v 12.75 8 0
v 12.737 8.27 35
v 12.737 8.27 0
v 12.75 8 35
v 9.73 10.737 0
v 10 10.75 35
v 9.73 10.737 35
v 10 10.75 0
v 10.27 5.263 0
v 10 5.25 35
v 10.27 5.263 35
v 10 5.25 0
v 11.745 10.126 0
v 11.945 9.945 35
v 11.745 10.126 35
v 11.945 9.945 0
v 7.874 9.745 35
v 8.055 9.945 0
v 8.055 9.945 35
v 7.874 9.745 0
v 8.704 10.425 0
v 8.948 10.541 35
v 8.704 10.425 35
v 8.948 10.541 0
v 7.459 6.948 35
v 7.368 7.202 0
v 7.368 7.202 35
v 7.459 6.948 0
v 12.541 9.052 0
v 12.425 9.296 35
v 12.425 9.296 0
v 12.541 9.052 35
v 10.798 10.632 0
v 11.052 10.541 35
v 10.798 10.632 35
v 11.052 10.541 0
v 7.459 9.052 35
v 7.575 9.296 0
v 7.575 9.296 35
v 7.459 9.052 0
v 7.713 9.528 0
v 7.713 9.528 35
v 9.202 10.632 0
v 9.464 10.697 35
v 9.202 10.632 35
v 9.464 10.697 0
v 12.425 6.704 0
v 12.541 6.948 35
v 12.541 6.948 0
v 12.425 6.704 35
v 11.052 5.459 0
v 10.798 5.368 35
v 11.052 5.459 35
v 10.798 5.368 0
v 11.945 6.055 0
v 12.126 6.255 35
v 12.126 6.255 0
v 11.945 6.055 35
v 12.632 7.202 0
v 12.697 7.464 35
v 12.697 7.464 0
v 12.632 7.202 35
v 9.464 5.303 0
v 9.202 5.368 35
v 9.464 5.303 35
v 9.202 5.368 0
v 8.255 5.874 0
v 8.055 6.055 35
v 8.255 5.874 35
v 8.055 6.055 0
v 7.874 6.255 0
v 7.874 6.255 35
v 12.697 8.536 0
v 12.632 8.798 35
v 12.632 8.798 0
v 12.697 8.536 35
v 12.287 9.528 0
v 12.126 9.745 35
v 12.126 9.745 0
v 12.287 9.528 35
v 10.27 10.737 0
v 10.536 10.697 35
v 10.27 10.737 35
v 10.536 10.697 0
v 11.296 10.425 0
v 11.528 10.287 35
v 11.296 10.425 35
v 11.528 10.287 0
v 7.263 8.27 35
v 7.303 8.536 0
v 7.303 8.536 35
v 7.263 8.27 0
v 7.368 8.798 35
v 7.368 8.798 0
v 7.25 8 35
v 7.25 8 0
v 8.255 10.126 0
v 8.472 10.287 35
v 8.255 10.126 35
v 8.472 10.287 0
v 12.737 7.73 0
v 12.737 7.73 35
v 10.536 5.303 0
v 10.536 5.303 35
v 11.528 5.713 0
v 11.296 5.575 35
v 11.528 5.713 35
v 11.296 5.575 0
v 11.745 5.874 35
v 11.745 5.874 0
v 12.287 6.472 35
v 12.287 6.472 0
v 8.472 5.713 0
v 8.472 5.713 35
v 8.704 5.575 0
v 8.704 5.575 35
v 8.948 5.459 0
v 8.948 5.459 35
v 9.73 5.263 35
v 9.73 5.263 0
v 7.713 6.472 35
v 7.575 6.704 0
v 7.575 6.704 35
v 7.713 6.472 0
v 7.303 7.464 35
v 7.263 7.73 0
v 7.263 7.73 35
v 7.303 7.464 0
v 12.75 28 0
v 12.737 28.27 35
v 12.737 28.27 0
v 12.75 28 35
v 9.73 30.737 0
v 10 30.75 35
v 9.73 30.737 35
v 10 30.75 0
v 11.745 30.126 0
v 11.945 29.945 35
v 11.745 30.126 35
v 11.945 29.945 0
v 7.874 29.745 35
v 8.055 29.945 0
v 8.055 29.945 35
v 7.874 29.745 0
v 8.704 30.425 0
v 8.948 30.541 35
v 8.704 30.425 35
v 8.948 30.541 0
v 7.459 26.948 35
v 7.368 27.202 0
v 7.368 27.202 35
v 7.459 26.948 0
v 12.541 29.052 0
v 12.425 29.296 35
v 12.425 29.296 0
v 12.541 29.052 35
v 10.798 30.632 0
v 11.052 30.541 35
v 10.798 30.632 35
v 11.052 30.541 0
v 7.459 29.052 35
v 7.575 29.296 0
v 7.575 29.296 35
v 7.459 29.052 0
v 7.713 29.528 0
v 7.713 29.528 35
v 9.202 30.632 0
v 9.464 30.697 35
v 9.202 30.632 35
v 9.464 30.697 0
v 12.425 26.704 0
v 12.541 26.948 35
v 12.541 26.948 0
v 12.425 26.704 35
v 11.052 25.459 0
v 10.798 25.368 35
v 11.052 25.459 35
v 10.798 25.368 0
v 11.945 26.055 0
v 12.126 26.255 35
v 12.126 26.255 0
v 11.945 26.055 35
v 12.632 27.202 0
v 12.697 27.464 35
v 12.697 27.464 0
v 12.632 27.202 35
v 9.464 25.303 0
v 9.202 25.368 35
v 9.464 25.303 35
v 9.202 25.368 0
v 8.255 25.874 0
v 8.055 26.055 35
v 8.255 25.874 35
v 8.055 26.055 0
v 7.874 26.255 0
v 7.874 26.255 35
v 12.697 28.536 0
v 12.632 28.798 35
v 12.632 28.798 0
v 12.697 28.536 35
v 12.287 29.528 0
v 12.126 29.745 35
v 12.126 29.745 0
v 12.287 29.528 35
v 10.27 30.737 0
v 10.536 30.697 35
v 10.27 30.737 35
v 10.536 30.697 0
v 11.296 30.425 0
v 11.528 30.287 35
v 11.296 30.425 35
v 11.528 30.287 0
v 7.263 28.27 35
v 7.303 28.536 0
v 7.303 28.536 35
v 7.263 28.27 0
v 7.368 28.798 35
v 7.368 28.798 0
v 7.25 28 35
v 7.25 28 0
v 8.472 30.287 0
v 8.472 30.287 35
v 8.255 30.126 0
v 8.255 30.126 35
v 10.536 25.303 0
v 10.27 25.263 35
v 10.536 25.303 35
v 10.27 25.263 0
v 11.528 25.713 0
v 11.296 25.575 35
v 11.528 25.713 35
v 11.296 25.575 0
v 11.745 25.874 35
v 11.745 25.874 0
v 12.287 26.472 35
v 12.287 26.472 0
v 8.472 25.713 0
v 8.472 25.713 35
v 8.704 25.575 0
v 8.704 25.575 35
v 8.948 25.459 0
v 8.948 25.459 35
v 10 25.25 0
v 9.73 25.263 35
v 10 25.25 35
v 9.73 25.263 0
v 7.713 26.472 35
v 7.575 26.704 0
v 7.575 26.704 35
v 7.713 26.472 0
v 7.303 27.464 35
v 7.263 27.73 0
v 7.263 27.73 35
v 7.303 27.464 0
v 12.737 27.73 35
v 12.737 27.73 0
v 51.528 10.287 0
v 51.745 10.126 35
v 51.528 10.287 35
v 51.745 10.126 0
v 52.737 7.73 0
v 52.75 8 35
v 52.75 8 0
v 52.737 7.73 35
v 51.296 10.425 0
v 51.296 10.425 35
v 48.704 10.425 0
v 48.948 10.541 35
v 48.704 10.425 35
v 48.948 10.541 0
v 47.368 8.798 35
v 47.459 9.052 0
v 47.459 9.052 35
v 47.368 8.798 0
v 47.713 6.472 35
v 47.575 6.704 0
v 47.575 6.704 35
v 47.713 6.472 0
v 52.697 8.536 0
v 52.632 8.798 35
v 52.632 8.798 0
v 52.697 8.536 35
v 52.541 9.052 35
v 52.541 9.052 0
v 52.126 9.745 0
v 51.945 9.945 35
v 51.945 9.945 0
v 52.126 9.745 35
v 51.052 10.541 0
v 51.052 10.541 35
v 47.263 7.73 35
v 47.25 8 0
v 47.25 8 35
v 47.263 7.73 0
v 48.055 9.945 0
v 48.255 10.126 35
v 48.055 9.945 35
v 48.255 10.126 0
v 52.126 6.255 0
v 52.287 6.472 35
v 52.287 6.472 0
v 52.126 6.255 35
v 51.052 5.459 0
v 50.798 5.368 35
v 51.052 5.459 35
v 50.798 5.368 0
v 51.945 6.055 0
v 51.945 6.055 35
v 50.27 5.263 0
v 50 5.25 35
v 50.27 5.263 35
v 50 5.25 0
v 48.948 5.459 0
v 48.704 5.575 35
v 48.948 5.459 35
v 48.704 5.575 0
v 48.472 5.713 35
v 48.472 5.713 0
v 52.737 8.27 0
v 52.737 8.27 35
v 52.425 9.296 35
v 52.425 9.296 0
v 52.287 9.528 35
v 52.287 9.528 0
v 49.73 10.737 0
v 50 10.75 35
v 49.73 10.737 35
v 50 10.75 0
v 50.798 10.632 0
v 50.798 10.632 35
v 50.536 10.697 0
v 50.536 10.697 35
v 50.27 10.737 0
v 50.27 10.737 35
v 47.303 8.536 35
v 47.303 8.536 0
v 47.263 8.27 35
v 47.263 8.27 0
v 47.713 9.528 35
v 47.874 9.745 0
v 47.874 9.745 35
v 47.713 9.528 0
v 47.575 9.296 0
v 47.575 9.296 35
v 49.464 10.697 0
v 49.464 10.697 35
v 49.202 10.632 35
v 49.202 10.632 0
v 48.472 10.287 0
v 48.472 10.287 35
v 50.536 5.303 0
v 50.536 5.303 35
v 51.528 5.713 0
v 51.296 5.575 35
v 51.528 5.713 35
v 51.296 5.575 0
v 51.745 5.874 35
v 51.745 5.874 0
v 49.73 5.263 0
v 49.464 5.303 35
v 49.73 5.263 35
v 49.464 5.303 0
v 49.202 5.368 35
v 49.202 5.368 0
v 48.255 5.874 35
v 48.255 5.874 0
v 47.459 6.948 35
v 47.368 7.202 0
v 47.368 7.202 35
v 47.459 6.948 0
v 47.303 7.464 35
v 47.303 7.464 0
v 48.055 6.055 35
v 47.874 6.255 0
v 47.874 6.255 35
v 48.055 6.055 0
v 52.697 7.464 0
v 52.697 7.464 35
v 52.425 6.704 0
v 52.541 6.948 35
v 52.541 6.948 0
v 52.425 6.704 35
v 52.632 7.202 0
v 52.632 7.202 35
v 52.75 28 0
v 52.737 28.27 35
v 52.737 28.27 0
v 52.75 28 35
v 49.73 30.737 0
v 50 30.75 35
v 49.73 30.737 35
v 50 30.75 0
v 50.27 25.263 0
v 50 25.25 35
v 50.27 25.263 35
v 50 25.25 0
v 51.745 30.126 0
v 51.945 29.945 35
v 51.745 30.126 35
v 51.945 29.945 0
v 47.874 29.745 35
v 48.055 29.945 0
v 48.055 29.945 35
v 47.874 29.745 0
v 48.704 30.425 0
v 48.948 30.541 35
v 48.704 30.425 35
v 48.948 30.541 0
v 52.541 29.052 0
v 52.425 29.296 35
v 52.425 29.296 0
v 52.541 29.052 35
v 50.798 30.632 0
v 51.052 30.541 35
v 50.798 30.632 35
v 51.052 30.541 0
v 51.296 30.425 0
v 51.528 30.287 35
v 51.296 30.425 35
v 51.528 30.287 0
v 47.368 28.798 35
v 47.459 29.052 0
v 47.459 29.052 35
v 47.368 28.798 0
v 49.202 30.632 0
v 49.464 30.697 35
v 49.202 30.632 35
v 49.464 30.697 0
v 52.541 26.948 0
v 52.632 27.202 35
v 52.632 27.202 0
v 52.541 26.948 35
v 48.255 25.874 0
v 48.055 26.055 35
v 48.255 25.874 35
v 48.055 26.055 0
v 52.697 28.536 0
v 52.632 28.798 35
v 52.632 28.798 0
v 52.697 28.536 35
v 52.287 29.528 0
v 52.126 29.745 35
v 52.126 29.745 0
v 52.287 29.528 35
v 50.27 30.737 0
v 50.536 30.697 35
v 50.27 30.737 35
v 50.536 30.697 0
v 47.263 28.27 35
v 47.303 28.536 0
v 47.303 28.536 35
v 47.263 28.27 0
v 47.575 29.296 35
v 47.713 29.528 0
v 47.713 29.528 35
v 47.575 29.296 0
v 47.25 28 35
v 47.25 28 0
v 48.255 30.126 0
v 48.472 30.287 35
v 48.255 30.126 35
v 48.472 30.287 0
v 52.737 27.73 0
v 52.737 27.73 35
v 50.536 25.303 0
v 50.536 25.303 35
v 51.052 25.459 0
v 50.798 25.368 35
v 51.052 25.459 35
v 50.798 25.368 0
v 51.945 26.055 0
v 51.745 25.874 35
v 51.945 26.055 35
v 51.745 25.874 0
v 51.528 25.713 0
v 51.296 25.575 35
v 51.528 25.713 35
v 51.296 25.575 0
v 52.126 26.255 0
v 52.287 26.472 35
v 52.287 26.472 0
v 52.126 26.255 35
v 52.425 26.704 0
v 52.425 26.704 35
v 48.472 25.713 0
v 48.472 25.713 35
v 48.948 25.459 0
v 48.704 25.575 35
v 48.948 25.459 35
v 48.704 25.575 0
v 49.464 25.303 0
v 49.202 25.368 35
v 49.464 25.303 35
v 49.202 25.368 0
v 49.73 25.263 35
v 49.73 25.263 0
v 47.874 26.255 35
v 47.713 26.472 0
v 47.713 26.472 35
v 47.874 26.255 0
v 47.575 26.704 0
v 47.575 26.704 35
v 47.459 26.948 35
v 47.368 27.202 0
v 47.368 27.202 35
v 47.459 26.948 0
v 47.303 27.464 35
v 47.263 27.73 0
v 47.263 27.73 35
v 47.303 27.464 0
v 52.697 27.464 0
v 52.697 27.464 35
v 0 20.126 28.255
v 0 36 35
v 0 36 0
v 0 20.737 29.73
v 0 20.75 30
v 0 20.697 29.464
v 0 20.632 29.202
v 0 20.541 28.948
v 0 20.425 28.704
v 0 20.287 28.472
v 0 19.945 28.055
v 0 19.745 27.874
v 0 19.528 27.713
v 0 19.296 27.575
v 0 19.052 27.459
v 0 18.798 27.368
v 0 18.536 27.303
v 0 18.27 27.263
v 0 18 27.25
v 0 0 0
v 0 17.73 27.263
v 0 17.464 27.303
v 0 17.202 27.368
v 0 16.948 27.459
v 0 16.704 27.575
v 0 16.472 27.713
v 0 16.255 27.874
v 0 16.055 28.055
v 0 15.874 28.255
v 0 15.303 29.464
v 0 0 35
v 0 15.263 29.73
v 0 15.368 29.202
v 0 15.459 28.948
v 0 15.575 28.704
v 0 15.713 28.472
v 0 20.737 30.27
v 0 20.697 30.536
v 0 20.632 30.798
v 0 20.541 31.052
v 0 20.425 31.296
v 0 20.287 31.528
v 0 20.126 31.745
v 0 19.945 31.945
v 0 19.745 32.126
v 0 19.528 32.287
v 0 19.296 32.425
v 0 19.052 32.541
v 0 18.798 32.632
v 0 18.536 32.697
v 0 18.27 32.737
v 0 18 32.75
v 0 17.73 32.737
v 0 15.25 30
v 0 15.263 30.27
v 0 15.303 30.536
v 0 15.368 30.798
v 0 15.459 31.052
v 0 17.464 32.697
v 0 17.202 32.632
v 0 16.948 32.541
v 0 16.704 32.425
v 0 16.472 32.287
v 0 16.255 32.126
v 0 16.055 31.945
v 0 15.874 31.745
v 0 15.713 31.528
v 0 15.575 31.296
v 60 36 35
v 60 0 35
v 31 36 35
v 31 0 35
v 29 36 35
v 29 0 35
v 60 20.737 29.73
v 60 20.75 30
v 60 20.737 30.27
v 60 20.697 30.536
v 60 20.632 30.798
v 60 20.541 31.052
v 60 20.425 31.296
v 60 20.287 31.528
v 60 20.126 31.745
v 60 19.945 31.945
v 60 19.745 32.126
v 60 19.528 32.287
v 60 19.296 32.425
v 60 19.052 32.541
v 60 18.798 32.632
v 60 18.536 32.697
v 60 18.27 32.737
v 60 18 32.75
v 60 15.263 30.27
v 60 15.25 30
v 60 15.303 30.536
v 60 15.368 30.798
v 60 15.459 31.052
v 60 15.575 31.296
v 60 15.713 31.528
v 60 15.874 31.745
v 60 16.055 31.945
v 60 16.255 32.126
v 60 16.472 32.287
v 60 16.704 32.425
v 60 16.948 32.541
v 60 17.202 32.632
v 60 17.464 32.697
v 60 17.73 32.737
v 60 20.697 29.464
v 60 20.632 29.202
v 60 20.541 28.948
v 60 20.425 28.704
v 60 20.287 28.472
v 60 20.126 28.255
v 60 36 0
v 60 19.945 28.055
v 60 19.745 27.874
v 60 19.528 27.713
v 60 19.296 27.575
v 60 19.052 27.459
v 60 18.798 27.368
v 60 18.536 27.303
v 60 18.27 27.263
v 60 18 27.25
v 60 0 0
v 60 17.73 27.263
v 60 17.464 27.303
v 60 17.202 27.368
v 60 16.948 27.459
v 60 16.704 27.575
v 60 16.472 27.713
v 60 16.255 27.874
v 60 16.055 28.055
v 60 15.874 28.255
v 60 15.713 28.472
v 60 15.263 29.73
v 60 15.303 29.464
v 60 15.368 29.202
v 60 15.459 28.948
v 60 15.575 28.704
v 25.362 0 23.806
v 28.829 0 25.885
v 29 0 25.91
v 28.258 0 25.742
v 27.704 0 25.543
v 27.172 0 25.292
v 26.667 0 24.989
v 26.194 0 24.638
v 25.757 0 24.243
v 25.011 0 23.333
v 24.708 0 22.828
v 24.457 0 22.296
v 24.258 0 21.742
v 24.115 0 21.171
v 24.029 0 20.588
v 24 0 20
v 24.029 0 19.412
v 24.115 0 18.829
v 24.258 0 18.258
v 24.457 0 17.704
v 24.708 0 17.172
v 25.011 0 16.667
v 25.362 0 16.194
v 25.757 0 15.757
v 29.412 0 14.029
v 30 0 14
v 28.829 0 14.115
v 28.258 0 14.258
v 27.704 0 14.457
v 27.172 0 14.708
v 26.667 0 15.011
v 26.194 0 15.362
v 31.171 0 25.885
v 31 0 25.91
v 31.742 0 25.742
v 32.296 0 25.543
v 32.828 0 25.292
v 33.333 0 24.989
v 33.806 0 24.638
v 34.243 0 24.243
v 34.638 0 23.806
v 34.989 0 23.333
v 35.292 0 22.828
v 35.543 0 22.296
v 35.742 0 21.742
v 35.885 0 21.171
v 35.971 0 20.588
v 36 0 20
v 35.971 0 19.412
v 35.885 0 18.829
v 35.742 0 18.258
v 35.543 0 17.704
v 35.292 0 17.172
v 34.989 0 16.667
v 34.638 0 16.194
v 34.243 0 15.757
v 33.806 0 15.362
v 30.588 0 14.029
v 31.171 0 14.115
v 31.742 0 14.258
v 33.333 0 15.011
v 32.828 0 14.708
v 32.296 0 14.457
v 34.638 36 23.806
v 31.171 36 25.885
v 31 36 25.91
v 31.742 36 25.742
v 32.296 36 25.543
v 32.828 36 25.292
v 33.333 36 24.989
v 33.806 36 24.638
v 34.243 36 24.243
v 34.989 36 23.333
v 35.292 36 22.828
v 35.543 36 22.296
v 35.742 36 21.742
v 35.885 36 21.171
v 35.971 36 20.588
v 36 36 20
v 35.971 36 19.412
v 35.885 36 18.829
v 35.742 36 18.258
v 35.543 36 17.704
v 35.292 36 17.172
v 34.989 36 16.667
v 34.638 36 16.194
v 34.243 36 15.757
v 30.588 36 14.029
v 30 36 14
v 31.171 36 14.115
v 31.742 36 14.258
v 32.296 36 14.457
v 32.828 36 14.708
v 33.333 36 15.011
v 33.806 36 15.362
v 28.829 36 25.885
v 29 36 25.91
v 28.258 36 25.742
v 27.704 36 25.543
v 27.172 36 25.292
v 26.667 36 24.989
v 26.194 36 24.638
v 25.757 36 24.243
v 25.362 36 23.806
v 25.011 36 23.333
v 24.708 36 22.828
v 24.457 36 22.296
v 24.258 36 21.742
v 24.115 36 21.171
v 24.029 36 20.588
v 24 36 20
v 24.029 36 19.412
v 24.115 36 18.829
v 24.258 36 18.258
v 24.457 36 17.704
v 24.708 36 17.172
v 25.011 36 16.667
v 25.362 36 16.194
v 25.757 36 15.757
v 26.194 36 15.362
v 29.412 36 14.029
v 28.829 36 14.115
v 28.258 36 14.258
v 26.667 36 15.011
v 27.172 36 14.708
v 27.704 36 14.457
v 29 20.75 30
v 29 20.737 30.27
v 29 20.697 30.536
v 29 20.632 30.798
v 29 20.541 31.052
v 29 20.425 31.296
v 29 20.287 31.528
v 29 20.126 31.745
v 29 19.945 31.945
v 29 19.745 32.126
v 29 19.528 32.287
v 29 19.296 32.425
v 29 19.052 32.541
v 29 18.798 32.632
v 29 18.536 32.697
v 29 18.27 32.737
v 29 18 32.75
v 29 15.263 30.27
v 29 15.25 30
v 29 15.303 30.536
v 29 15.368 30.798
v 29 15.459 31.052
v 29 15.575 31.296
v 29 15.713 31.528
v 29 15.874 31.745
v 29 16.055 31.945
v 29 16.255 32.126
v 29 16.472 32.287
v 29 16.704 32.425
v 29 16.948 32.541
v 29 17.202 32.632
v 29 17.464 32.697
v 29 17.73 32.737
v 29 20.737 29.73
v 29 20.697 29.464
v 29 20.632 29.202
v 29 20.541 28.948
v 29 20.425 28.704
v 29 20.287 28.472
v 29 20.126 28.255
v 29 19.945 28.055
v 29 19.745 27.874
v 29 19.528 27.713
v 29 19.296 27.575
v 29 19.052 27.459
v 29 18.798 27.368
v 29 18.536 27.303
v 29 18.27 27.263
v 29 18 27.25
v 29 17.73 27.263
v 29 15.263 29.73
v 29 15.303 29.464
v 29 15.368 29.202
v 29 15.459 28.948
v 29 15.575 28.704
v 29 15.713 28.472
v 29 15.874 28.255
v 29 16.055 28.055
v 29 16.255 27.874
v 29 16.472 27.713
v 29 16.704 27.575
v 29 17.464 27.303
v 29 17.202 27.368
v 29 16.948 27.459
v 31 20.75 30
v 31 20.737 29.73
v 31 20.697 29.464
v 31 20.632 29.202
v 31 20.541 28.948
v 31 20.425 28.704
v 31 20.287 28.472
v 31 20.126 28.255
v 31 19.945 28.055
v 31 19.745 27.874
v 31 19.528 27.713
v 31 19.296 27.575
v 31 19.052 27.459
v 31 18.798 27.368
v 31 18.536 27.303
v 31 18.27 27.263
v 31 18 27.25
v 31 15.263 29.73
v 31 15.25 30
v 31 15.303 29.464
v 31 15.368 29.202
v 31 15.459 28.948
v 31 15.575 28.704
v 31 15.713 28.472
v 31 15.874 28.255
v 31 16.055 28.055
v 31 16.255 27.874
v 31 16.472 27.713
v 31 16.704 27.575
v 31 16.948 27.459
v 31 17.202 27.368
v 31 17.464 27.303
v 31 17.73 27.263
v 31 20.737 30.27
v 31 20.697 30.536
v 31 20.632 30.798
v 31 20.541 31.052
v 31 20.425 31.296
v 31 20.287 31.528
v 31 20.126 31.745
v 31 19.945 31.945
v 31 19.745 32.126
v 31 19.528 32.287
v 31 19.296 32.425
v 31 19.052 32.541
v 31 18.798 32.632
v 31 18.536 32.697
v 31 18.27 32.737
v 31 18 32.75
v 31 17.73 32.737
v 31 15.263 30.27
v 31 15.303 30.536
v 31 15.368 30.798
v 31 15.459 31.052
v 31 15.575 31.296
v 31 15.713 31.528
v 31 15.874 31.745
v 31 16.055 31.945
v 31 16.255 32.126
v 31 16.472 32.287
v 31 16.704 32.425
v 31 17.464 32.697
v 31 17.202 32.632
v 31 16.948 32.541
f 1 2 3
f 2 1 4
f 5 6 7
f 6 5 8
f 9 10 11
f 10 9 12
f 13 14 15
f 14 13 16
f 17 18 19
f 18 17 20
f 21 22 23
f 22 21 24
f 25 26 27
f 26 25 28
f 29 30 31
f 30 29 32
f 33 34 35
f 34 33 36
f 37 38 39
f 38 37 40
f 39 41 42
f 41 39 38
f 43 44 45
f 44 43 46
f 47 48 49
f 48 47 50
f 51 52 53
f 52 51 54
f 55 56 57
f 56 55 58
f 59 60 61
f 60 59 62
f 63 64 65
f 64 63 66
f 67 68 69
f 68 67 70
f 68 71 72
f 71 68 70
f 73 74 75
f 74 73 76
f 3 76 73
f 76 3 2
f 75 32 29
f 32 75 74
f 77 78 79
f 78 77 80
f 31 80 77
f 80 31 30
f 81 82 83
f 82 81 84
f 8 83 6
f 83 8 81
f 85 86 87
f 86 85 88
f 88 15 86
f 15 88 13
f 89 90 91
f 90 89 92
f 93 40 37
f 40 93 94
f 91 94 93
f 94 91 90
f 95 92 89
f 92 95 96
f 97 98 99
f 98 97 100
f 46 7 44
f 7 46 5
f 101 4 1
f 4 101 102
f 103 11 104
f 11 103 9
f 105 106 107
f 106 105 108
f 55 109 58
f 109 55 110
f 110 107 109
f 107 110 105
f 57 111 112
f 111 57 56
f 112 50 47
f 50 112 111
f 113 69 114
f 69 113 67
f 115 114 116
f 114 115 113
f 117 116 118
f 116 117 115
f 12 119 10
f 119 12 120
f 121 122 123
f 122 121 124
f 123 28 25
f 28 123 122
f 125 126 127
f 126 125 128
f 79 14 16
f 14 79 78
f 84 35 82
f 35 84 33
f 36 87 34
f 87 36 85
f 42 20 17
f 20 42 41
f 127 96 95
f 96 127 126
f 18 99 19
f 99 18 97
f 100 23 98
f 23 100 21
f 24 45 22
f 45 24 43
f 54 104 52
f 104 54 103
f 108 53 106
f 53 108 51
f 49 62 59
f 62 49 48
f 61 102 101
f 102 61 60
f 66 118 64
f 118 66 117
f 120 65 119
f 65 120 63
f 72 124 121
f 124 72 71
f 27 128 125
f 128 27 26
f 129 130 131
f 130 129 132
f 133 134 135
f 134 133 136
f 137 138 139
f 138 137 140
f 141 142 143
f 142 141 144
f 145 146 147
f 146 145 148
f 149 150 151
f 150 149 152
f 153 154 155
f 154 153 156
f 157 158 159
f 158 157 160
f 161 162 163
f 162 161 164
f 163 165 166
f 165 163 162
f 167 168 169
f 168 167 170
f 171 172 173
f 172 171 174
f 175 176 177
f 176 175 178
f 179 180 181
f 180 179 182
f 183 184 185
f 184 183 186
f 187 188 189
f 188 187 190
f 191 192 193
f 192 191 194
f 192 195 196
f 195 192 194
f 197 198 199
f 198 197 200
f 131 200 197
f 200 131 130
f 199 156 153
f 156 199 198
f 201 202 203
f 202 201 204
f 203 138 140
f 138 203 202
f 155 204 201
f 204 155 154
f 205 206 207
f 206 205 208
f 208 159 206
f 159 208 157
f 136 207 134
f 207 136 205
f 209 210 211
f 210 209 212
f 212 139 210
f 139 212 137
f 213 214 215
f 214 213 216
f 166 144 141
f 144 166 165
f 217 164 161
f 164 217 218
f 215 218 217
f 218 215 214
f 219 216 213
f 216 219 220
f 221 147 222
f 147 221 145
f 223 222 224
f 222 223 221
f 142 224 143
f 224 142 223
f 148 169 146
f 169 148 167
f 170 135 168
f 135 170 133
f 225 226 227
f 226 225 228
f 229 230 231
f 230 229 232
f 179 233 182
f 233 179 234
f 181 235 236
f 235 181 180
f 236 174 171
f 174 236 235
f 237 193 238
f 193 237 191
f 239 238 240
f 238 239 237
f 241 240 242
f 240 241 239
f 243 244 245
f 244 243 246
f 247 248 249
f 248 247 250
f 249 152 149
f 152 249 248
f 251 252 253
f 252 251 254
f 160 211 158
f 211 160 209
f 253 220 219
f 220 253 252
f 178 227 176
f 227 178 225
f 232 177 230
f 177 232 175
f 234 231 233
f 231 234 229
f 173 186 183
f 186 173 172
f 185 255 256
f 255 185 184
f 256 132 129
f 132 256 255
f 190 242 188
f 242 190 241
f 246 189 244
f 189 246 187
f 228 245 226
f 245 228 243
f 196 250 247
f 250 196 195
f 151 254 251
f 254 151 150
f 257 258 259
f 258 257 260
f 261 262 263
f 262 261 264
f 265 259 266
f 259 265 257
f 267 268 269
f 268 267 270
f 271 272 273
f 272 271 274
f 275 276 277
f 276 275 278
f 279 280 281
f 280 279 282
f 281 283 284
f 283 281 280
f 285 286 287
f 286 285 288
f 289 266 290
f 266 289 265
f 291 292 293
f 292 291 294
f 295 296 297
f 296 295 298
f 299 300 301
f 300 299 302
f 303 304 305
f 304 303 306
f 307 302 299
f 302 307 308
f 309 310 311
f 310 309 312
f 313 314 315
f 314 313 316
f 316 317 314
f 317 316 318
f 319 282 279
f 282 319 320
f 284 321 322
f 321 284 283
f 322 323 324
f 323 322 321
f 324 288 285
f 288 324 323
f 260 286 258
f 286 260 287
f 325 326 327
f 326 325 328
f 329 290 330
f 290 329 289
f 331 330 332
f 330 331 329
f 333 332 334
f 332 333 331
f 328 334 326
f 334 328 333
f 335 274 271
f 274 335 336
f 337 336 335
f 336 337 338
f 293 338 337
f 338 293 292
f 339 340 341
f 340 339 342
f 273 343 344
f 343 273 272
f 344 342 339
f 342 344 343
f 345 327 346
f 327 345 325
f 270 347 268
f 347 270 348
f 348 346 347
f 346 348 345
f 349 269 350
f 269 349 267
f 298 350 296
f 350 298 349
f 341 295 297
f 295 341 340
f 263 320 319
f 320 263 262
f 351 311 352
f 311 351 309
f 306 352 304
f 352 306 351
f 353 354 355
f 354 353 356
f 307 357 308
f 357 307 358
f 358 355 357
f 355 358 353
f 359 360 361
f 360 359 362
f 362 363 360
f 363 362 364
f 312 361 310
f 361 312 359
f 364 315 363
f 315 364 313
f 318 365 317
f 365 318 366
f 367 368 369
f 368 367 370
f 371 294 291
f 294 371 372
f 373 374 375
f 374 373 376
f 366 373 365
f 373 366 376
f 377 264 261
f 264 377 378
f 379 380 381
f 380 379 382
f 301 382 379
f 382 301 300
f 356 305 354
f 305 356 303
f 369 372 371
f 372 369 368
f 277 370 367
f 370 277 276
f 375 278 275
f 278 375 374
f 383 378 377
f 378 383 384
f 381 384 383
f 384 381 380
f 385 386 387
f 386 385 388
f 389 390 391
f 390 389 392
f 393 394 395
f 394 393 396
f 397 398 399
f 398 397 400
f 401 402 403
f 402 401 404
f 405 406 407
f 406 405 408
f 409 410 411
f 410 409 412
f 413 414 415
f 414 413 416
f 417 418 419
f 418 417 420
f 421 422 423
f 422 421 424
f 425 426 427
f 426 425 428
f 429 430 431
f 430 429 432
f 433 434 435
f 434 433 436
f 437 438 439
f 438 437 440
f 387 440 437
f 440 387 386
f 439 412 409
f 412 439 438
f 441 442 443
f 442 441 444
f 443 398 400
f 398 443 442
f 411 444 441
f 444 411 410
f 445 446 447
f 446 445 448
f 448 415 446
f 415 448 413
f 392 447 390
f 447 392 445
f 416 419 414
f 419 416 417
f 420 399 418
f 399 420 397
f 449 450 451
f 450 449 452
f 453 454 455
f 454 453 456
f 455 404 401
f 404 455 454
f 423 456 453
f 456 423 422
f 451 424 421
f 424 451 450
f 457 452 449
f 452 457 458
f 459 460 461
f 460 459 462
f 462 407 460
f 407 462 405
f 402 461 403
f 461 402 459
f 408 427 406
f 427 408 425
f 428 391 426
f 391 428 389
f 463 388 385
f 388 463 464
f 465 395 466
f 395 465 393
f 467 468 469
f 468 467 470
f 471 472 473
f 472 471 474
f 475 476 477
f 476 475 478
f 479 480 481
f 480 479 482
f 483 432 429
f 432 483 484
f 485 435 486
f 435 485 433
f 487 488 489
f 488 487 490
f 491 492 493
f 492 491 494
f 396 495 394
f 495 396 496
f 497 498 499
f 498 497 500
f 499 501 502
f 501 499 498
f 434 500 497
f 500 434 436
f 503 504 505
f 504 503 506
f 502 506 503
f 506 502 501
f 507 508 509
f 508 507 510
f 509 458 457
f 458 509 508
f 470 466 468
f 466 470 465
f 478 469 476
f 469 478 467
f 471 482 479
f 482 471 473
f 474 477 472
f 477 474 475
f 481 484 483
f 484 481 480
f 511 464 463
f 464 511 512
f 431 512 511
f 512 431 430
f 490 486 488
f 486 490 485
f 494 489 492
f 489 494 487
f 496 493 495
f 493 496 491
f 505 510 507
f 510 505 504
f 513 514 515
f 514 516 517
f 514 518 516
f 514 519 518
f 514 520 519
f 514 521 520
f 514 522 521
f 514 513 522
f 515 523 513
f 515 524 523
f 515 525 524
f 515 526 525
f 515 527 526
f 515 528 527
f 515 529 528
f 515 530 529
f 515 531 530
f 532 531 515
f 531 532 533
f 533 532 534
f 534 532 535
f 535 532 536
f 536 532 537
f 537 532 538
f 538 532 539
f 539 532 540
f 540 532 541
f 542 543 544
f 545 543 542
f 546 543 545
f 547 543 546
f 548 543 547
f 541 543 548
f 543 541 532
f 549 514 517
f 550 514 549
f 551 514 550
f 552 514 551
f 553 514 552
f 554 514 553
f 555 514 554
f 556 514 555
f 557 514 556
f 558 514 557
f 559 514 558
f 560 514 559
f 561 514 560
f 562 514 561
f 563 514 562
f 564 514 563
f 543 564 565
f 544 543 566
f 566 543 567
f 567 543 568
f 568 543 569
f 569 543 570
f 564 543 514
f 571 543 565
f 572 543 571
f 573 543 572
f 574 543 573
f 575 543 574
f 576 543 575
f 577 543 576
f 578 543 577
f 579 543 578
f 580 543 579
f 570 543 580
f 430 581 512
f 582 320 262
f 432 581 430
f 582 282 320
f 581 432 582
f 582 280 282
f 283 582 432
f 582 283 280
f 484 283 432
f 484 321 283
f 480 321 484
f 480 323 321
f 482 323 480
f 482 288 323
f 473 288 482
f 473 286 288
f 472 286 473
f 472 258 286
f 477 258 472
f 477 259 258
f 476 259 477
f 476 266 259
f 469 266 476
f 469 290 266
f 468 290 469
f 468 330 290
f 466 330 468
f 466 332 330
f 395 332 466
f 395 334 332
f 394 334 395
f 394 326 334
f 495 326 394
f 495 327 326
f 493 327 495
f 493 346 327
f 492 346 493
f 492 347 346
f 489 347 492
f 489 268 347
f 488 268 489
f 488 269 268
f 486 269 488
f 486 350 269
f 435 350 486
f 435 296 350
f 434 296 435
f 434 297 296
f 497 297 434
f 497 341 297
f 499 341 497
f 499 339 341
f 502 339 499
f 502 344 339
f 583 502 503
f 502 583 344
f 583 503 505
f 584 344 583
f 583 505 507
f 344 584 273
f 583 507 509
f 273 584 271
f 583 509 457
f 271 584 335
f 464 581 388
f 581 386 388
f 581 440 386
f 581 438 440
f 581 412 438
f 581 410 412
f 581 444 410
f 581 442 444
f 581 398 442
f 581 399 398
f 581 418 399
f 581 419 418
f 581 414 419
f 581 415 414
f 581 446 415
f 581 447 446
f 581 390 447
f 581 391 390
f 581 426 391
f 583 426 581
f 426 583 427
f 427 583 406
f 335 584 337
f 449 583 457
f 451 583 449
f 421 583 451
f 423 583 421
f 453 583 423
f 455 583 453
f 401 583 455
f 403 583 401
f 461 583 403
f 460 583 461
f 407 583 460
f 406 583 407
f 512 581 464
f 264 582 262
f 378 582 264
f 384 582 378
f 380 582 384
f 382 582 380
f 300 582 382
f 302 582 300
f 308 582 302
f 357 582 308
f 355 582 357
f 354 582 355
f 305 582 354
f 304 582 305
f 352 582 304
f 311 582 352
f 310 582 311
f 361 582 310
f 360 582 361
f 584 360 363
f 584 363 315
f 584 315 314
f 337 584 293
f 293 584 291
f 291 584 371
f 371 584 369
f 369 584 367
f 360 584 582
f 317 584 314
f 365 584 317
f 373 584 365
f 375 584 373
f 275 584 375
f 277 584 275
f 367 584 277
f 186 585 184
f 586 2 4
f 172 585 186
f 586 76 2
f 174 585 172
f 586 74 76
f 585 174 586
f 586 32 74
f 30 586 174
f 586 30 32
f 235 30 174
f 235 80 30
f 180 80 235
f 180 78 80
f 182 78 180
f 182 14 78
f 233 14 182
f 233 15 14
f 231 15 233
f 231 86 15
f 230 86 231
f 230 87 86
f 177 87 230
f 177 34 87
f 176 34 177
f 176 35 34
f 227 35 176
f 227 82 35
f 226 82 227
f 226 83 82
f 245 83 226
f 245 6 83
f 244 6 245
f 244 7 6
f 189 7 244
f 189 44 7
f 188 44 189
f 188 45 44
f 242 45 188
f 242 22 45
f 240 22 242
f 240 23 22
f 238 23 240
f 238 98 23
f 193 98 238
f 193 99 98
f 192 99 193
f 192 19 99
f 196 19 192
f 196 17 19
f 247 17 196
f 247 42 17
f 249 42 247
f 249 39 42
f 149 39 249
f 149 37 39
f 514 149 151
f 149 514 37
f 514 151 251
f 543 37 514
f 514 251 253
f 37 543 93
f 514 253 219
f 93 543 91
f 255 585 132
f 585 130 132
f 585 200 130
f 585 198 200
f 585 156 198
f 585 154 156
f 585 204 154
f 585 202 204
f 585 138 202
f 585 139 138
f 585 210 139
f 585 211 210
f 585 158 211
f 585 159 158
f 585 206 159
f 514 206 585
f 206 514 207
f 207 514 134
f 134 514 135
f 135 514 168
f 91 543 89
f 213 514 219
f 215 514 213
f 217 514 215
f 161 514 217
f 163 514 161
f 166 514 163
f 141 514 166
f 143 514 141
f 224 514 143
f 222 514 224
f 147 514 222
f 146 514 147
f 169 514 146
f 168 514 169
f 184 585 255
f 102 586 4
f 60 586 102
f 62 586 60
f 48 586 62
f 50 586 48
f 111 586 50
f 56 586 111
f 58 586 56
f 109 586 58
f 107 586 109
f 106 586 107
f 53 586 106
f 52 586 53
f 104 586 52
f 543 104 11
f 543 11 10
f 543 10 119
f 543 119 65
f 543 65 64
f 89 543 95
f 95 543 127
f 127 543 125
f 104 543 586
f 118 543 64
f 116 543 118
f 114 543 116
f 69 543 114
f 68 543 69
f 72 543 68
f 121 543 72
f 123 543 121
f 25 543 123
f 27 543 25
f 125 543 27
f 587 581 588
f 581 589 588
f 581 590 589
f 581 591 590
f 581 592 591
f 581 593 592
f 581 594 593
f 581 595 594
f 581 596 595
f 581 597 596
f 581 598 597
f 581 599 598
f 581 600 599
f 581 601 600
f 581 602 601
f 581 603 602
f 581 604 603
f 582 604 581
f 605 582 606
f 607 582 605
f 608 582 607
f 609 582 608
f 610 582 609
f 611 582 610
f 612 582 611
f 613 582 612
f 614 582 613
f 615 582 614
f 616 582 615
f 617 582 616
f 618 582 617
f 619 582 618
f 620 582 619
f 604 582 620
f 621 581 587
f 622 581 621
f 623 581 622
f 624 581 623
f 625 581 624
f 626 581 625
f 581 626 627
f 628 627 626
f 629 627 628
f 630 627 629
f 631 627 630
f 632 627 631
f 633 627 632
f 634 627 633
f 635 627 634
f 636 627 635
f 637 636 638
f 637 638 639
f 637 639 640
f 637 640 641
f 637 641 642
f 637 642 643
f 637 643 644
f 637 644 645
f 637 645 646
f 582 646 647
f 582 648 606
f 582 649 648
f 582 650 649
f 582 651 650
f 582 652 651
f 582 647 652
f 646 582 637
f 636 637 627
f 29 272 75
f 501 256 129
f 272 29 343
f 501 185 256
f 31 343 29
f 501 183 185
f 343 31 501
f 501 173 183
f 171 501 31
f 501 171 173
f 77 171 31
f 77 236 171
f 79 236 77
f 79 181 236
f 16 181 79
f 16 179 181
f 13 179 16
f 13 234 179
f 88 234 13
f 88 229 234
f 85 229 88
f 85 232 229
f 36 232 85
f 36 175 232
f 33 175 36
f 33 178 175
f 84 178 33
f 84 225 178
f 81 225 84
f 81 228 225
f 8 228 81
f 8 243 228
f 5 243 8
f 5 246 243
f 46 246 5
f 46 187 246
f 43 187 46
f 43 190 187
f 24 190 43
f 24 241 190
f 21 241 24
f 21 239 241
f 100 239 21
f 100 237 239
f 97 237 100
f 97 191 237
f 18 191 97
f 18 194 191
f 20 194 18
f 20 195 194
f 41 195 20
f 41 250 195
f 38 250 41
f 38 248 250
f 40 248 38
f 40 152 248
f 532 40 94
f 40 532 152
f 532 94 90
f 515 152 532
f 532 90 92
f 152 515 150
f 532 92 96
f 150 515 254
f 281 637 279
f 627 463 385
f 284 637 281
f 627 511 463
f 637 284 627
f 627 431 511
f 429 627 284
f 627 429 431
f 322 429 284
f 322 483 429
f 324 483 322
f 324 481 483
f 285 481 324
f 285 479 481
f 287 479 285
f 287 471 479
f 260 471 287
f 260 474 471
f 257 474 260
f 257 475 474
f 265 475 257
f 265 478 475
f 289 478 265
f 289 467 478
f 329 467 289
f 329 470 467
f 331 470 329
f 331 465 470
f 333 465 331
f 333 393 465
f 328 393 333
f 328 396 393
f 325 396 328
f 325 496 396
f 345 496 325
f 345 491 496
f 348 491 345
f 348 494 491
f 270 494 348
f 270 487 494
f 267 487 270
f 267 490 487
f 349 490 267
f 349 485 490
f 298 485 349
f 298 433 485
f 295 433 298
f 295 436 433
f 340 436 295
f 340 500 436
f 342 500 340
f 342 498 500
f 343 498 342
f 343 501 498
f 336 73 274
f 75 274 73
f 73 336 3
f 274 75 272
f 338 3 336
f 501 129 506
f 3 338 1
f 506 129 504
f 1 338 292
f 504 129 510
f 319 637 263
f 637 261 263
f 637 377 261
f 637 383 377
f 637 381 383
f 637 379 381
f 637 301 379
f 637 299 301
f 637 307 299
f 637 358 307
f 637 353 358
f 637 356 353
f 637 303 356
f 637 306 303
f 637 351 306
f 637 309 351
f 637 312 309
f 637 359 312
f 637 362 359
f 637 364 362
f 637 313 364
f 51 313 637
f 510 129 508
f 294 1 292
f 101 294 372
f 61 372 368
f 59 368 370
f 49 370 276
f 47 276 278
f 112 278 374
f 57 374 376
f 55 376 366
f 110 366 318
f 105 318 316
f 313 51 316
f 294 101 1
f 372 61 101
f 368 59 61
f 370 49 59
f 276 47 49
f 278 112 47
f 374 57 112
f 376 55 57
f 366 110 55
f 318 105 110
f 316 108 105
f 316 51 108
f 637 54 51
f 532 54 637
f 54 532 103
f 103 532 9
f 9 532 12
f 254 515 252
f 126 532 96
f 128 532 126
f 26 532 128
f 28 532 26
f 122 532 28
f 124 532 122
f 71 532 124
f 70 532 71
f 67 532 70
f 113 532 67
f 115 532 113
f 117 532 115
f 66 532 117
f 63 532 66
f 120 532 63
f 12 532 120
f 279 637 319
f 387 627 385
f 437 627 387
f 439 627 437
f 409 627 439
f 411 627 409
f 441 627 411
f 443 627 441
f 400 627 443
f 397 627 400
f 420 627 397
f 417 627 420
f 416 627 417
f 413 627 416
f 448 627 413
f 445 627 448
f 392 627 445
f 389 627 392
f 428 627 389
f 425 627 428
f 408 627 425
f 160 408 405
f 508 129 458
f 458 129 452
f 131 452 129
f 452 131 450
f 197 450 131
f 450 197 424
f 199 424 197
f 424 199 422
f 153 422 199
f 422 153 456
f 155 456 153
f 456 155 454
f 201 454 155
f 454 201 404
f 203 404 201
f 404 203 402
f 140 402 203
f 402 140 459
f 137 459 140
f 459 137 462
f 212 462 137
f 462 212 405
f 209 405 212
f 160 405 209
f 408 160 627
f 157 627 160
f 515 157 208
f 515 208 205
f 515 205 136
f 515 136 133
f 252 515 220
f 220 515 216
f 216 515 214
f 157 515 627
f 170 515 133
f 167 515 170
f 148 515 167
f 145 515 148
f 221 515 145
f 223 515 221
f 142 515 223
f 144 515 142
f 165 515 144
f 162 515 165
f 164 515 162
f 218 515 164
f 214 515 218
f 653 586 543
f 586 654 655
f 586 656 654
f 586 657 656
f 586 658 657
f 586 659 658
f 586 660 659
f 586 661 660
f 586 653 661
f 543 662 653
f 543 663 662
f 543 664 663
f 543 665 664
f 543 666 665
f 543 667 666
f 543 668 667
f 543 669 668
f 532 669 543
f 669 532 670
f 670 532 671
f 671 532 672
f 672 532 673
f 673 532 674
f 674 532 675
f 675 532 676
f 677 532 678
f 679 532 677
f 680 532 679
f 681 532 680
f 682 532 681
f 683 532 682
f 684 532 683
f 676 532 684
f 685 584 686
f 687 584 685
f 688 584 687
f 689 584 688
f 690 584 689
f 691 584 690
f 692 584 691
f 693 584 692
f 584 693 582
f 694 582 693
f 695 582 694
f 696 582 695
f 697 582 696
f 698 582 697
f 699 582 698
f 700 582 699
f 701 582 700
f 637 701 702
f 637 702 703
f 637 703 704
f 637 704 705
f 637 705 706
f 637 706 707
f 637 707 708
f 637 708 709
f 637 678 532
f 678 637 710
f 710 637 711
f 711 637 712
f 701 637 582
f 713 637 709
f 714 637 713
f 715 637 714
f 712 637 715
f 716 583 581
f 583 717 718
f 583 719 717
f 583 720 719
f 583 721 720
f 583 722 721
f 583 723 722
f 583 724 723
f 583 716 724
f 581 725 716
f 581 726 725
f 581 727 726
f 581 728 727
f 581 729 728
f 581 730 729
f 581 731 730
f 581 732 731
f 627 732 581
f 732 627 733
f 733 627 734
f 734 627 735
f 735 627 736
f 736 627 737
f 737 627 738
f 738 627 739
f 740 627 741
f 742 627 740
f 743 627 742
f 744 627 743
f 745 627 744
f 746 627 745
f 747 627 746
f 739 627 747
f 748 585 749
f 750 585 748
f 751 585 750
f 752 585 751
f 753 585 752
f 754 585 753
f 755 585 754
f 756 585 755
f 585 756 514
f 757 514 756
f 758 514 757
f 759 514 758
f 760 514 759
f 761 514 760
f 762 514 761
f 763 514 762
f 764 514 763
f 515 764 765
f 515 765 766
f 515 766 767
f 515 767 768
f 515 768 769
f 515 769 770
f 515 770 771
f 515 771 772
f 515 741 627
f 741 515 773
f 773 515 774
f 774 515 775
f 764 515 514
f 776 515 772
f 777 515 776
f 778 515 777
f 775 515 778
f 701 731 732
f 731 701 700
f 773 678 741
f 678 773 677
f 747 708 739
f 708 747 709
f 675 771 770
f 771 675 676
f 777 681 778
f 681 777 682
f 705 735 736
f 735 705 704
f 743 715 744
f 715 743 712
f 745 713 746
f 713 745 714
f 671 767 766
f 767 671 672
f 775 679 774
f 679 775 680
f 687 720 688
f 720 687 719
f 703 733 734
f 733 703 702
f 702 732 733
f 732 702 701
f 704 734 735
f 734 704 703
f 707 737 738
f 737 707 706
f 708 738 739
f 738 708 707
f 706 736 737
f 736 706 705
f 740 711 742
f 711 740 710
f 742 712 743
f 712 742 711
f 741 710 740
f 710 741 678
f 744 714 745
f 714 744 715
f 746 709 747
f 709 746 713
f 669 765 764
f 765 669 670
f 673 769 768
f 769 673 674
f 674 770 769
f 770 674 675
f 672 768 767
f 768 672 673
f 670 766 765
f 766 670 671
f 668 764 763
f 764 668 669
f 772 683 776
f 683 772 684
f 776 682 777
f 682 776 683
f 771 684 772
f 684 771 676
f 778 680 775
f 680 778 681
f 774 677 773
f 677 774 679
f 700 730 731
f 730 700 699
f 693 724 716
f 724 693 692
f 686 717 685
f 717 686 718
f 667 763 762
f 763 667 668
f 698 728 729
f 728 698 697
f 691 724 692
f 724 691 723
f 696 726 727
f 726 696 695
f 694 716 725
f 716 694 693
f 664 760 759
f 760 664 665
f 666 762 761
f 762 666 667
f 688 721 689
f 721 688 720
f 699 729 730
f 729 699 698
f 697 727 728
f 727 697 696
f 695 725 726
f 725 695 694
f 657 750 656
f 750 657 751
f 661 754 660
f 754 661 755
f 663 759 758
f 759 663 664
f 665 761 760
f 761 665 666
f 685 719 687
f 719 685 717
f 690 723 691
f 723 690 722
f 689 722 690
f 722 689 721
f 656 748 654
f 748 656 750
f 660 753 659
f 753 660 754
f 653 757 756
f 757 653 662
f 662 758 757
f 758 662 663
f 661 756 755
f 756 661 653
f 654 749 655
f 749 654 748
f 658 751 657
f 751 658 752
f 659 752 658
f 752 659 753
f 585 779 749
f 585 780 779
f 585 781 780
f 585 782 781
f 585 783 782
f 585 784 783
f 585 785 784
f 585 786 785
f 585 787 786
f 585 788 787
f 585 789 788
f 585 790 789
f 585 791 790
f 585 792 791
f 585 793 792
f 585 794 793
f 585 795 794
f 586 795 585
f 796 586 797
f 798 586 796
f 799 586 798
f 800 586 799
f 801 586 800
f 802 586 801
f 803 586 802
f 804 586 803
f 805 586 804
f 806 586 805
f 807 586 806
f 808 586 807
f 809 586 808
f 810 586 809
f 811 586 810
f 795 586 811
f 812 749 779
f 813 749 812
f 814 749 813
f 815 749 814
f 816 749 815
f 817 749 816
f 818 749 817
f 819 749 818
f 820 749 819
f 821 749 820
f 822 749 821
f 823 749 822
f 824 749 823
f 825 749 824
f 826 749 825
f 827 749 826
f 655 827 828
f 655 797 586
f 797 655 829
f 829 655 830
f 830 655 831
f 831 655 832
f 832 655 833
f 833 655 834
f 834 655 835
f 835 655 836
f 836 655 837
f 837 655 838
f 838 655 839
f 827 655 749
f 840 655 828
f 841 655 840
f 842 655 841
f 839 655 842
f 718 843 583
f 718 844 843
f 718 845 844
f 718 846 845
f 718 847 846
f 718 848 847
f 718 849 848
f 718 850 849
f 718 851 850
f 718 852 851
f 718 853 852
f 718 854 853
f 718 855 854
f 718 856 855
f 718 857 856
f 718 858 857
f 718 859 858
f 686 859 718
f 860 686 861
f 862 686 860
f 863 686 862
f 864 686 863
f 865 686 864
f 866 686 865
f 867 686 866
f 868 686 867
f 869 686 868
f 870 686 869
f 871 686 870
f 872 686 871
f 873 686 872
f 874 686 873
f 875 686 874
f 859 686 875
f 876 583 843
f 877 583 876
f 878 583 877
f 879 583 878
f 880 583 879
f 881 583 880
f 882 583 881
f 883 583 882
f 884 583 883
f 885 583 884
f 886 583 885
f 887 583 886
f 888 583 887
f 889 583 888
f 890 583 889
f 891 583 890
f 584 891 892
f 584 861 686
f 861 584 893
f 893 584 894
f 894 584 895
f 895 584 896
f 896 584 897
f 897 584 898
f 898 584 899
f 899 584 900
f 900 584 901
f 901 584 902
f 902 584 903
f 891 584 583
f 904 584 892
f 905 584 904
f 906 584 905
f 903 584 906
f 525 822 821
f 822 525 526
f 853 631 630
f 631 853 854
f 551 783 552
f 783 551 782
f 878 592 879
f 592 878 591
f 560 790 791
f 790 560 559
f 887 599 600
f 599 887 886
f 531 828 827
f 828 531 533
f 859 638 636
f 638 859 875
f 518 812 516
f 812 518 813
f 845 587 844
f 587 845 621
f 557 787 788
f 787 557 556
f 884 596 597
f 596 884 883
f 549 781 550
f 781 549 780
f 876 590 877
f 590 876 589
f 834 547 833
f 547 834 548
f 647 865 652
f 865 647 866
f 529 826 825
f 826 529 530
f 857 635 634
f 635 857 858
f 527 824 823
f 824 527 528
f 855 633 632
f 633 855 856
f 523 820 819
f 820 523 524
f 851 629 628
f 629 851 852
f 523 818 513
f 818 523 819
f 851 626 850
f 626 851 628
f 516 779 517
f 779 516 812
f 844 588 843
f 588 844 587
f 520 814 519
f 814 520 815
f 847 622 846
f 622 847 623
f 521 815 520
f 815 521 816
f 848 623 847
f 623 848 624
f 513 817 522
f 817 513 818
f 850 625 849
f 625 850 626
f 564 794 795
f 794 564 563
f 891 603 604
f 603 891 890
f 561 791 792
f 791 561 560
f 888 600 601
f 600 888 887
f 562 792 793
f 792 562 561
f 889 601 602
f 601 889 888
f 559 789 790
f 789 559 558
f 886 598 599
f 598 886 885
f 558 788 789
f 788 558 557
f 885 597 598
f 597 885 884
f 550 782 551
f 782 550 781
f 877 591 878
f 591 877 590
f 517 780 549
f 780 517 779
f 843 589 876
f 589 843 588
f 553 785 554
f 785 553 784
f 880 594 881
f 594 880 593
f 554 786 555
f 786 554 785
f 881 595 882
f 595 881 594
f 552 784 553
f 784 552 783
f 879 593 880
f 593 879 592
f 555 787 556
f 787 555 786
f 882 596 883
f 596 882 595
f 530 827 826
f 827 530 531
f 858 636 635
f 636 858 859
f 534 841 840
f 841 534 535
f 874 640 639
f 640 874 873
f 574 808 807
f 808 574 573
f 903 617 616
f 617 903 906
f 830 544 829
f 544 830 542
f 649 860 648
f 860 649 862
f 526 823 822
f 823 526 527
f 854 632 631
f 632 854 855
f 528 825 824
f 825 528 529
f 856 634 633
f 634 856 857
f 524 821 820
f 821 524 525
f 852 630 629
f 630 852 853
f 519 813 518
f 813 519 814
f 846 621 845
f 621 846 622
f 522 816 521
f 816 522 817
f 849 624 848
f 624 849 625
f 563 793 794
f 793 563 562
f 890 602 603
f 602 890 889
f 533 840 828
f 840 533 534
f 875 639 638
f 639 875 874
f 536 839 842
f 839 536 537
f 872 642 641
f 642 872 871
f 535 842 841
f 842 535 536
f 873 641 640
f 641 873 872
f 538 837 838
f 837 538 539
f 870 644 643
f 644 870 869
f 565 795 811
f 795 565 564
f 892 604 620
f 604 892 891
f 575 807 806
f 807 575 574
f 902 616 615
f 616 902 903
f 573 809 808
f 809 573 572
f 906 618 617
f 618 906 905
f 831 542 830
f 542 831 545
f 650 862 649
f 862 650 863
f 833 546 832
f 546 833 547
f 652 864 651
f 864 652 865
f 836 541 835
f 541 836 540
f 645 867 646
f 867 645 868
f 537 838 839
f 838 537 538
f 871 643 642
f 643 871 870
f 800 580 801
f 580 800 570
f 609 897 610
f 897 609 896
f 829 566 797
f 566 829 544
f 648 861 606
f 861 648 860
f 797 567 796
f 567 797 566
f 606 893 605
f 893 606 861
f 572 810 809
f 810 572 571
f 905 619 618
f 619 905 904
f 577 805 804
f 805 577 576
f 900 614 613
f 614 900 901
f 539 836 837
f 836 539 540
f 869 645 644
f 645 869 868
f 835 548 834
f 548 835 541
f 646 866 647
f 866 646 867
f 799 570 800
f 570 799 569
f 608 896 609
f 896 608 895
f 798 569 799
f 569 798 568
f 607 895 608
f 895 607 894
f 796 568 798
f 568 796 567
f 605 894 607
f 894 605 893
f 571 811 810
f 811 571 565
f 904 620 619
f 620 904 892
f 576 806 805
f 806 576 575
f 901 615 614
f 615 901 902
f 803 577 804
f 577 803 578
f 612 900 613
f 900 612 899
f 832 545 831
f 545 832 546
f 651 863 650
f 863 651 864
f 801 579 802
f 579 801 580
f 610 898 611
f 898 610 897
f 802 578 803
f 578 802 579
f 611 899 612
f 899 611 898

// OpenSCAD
// Original MechIntel educational model. CC0-1.0. Units: mm.
// Not a standardized or load-rated component.
$fn=96;
length=60; depth=36; height=35; bore=12; slit=2;
$fn=64;
difference(){
 cube([length,depth,height]);
 translate([length/2,-1,20]) rotate([-90,0,0]) cylinder(d=bore,h=depth+2);
 translate([length/2-slit/2,-1,20]) cube([slit,depth+2,height-19]);
 translate([-1,depth/2,30]) rotate([0,90,0]) cylinder(d=5.5,h=length+2);
 for(x=[10,length-10]) for(y=[8,depth-8]) translate([x,y,-1]) cylinder(d=5.5,h=height+2);
}
